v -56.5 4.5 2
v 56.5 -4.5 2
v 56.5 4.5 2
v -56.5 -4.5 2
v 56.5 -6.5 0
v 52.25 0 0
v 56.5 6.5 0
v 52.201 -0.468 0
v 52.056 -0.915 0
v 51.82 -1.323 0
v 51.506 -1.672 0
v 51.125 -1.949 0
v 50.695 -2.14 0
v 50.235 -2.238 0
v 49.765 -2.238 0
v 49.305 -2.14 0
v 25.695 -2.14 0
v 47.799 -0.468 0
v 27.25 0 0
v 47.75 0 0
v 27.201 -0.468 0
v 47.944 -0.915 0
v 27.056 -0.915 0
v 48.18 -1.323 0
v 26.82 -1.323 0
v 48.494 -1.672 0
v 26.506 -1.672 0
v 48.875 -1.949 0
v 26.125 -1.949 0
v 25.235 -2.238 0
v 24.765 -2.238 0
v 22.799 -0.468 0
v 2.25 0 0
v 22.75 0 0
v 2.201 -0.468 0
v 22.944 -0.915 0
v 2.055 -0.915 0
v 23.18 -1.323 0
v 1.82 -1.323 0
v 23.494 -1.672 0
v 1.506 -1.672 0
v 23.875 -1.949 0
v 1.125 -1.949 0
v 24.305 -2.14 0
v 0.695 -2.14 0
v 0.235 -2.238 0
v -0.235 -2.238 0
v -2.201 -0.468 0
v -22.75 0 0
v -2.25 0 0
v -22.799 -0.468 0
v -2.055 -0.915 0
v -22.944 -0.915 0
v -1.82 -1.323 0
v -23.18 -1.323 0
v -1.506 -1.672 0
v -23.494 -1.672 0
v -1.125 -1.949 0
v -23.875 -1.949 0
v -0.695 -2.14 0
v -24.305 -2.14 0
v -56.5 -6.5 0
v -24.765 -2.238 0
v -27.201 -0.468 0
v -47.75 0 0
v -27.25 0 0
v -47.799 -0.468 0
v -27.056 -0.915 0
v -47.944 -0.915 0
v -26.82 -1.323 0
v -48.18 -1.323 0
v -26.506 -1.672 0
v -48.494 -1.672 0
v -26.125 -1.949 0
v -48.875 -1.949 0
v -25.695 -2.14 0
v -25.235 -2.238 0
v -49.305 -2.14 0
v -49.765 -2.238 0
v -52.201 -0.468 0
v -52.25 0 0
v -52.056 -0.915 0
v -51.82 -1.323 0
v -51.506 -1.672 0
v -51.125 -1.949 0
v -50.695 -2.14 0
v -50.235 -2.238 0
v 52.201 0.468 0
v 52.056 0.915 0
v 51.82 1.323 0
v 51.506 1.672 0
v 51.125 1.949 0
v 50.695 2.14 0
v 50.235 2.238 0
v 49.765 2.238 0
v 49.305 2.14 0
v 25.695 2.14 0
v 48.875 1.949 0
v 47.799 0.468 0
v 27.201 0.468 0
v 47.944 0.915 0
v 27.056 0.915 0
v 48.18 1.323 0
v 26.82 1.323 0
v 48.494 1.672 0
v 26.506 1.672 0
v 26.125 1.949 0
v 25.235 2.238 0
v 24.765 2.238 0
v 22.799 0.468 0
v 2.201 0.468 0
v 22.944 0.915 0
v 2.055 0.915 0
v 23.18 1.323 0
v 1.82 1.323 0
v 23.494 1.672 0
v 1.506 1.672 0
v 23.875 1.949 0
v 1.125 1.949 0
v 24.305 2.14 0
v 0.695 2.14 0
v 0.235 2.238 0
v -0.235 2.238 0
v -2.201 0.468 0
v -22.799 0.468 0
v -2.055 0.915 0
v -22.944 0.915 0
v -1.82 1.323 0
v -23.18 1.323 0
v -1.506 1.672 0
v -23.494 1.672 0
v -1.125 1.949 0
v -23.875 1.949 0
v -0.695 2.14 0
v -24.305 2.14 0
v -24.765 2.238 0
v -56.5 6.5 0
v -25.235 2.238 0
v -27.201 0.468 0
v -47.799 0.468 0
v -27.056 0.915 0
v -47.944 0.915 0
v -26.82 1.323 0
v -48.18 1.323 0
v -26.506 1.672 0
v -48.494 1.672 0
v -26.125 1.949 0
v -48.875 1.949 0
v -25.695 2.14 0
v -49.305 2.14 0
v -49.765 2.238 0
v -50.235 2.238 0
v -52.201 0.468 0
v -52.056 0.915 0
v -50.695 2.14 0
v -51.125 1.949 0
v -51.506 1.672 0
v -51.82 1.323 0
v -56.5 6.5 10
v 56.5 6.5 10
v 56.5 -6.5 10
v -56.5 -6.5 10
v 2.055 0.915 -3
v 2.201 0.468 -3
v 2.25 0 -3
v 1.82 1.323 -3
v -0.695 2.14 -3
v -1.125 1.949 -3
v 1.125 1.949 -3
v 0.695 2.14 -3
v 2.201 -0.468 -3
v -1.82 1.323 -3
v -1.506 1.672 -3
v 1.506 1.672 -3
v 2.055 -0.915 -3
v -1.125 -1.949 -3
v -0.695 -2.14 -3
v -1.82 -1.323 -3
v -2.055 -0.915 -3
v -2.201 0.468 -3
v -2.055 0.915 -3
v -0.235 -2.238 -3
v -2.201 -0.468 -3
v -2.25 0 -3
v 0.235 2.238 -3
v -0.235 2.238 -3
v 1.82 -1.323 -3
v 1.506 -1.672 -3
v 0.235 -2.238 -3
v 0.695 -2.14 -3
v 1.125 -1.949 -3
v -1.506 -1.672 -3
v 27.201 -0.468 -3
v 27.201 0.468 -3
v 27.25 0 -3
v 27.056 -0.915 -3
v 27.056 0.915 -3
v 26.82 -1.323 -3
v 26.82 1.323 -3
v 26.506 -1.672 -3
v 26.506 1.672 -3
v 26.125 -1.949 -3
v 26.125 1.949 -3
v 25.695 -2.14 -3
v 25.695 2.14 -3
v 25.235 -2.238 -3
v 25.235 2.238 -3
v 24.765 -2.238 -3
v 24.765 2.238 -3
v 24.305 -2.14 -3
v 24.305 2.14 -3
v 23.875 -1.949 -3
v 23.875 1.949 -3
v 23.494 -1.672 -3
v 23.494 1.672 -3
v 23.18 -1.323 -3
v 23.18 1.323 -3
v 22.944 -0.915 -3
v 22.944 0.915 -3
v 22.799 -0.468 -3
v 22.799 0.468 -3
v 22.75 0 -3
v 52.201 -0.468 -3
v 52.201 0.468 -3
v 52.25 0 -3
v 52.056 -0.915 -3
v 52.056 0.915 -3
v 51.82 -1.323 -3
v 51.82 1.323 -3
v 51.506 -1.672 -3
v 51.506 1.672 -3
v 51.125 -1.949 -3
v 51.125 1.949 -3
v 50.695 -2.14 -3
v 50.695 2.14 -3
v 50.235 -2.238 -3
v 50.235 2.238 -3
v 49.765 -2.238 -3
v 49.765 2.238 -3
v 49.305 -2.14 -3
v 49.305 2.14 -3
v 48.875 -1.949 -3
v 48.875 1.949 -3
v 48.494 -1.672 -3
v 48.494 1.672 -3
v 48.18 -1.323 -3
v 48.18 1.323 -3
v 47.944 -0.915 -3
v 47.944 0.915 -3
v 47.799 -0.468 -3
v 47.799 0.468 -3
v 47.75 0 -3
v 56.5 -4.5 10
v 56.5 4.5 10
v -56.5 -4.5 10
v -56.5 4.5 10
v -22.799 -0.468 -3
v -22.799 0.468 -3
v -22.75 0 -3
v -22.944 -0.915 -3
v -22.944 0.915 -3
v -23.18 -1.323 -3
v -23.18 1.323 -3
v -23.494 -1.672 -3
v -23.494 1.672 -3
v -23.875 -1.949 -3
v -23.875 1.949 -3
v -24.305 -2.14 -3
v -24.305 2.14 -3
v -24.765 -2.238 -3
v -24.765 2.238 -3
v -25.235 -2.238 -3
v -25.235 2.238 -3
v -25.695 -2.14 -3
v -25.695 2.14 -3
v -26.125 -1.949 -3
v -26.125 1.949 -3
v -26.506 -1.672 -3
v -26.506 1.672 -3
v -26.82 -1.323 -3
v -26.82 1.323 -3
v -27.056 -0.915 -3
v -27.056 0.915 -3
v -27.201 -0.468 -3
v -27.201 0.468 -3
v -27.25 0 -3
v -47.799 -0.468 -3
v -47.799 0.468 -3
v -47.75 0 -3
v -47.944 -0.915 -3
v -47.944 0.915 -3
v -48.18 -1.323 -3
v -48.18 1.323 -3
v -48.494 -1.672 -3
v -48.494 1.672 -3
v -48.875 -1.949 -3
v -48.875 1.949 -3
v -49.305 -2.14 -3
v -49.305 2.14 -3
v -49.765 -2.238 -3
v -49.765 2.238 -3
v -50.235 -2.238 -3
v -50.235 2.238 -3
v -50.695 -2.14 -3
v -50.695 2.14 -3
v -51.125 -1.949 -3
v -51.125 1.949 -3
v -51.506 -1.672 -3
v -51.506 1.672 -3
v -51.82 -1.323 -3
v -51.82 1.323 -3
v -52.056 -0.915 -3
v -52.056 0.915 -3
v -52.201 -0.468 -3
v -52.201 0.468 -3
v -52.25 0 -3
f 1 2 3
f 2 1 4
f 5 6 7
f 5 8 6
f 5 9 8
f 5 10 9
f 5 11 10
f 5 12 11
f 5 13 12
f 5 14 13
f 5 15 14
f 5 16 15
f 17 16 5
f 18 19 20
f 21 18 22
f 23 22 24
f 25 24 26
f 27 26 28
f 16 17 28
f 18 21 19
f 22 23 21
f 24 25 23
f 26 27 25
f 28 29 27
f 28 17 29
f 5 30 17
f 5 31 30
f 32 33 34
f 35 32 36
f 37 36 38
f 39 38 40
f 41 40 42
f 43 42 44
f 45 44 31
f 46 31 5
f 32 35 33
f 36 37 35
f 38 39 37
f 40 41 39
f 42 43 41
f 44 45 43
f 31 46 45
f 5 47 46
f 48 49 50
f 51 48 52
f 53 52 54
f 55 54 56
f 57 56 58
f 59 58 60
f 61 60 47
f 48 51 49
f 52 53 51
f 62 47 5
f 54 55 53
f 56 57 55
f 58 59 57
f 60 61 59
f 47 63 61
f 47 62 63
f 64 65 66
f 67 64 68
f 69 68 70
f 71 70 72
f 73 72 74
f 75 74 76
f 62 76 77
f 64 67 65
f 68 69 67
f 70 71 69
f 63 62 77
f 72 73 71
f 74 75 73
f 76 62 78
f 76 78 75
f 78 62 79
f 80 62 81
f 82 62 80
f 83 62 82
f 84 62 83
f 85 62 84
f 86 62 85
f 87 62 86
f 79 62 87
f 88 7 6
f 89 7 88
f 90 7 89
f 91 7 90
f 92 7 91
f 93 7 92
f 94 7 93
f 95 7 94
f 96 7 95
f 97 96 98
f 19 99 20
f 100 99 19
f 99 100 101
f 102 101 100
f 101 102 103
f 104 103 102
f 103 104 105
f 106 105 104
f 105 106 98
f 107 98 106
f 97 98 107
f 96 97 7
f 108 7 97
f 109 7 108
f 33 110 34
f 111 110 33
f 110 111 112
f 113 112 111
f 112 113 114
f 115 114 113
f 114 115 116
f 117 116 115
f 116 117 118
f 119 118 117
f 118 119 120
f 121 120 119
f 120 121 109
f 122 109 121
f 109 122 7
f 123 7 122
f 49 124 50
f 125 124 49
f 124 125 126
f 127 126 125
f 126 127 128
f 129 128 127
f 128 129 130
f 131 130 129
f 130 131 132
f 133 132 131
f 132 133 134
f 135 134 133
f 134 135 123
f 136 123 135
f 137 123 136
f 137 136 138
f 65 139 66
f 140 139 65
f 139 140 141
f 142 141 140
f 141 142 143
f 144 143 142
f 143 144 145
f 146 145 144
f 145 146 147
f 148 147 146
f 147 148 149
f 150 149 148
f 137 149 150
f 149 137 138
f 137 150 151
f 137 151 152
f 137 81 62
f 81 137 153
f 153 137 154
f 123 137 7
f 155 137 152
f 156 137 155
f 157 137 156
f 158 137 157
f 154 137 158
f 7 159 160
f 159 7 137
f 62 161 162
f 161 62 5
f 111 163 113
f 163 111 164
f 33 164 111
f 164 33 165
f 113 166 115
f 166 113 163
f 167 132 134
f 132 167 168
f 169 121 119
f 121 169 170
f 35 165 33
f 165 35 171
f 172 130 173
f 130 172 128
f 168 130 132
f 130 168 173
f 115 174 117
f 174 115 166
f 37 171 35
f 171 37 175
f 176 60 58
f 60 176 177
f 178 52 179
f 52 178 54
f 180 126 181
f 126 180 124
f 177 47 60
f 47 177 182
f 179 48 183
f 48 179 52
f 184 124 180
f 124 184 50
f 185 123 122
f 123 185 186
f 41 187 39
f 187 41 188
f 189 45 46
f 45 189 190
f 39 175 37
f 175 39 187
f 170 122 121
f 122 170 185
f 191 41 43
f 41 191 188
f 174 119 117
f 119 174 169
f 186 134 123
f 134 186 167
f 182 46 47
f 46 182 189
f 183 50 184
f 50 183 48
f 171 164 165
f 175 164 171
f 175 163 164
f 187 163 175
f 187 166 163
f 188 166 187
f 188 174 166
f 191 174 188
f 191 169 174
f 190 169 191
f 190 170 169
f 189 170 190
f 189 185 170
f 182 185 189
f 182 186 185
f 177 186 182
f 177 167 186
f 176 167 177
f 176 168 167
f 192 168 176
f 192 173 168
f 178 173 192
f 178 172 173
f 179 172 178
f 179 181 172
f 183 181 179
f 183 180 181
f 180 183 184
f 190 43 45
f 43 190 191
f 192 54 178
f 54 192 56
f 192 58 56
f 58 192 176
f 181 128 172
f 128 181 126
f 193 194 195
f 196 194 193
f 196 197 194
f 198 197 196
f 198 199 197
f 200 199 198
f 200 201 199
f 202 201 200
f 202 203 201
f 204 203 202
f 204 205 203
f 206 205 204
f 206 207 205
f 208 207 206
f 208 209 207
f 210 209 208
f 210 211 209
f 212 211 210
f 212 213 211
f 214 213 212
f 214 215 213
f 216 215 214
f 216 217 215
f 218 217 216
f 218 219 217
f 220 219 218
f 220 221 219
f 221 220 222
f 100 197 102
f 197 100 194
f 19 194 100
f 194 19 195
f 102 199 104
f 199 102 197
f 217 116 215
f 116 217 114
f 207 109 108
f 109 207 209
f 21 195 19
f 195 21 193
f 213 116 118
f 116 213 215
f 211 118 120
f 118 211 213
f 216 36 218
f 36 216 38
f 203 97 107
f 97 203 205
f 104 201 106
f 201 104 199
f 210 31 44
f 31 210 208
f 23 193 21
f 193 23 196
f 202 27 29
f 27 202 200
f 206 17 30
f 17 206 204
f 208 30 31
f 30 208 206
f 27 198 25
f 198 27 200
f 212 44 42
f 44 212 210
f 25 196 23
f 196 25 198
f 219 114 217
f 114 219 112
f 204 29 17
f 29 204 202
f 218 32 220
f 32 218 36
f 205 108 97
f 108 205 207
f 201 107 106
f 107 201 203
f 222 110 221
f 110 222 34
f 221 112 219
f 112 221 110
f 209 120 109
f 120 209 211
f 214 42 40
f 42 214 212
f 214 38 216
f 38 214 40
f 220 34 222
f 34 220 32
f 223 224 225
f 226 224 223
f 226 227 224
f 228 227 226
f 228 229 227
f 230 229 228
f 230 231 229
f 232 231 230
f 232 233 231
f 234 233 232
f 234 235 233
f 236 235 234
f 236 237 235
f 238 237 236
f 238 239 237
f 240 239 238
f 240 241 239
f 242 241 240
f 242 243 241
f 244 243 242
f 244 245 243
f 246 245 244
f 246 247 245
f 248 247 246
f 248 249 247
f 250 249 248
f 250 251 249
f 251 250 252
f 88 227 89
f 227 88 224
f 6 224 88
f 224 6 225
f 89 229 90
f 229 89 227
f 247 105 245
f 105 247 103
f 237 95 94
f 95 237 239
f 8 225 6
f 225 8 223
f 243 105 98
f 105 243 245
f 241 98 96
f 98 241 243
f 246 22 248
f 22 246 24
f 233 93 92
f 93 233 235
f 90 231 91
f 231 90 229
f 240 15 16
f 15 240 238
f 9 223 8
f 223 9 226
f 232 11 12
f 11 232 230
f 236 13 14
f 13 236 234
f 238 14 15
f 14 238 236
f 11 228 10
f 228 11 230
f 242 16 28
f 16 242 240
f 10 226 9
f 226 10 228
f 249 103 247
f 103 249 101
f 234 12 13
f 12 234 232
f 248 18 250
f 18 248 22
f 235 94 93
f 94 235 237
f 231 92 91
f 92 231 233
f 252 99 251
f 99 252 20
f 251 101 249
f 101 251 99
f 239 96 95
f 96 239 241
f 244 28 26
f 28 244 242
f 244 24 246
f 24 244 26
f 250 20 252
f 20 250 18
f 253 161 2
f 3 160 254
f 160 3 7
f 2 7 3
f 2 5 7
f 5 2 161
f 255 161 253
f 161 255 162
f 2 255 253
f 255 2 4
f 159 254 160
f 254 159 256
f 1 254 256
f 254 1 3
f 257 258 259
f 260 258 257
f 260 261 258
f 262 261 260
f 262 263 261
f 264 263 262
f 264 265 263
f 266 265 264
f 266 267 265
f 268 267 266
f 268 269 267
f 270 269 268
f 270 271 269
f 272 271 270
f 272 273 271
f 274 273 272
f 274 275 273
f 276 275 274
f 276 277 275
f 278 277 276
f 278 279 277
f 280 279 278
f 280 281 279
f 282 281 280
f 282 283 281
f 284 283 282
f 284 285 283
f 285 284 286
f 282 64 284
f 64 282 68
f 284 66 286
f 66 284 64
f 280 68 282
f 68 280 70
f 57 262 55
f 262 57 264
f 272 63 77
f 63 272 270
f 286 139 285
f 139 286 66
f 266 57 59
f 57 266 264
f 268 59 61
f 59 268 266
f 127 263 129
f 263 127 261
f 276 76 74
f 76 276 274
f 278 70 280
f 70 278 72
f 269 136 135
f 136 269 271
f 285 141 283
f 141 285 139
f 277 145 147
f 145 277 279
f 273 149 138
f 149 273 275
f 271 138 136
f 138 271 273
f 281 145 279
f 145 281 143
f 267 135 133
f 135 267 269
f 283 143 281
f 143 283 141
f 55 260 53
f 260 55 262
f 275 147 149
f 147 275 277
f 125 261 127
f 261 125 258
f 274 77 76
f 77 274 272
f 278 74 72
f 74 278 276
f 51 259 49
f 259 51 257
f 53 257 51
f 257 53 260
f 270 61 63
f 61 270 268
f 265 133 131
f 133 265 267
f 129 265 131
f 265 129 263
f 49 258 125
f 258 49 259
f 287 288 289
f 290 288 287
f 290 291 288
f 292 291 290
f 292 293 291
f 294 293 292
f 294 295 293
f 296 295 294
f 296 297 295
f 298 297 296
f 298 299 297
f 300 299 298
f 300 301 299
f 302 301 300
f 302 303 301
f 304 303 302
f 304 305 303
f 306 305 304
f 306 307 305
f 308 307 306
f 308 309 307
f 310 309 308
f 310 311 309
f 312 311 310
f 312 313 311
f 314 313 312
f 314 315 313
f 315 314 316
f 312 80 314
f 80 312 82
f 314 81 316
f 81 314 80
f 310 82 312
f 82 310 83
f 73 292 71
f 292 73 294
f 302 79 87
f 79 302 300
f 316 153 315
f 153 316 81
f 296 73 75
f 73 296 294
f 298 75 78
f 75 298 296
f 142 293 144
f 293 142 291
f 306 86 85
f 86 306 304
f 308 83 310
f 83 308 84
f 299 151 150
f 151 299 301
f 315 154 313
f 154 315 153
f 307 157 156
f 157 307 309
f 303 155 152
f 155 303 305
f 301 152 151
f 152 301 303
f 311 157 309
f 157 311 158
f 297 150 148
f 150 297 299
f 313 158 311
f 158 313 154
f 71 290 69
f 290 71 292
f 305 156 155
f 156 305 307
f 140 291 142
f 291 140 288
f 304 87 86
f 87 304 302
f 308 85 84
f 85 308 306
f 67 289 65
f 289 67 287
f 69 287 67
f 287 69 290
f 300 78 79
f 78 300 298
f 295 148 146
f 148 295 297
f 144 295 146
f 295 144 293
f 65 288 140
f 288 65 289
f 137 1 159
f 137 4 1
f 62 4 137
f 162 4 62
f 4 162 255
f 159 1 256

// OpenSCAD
// file: common.scad
CENTER_SIZE = 9;
SLEEVE_REACH = 56.5;
GROOVE_WIDTH = 9;
WALL_HEIGHT = 10;
WALL_THICKNESS = 2;
BASE_THICKNESS = 2;
TOTAL_WIDTH = GROOVE_WIDTH + 2 * WALL_THICKNESS;
SLEEVE_LENGTH = SLEEVE_REACH - CENTER_SIZE/2;
DOWEL_DIAMETER = 4.5;
DOWEL_DEPTH = 3;
CARDBOARD_THICKNESS = 2;
GROOVE_BOTTOM = CARDBOARD_THICKNESS;
CURVE_POWER = 2;
CURVE_POINTS = 20;
TILT_ANGLE_EXTRA = 5;
FLEXIBLE_WALL_HEIGHT = WALL_HEIGHT * 2;
function wall_curve(z) =
    GROOVE_BOTTOM/2 + (GROOVE_WIDTH/2 - GROOVE_BOTTOM/2) * pow(z/(FLEXIBLE_WALL_HEIGHT - BASE_THICKNESS), CURVE_POWER);
module curved_wall_profile(side) {
    wall_h = FLEXIBLE_WALL_HEIGHT - BASE_THICKNESS;
    points_inner = [for (i = [0:CURVE_POINTS])
        [wall_curve(i * wall_h / CURVE_POINTS) * side,
         i * wall_h / CURVE_POINTS]
    ];
    points_outer = [for (i = [0:CURVE_POINTS])
        [(wall_curve(i * wall_h / CURVE_POINTS) + WALL_THICKNESS) * side,
         i * wall_h / CURVE_POINTS]
    ];
    all_points = concat(
        [[points_inner[0][0], 0]],
        points_inner,
        [points_outer[len(points_outer)-1]],
        [for (i = [len(points_outer)-1:-1:0]) points_outer[i]],
        [[points_outer[0][0], 0]]
    );
    polygon(all_points);
}
module draw_regular_wall_base(width) {
    translate([0, 0, BASE_THICKNESS])
        cube([width, WALL_THICKNESS, WALL_HEIGHT - BASE_THICKNESS]);
}
module draw_flexible_wall_base(width) {
    tilt_angle = atan((GROOVE_WIDTH/2 - GROOVE_BOTTOM/2) / (FLEXIBLE_WALL_HEIGHT - BASE_THICKNESS)) + TILT_ANGLE_EXTRA;
    rotate([0, 0, 90])
        rotate([tilt_angle + 6, 0, 0])
            rotate([90, 0, 90])
                linear_extrude(height = width)
                    curved_wall_profile(1);
}
module draw_center_base(with_dowel = false) {
    union() {
        translate([-TOTAL_WIDTH/2, -TOTAL_WIDTH/2, 0])
            cube([TOTAL_WIDTH, TOTAL_WIDTH, BASE_THICKNESS]);
        if (with_dowel) {
            translate([0, 0, -DOWEL_DEPTH])
                cylinder(h=DOWEL_DEPTH, d=DOWEL_DIAMETER, $fn=30);
        }
    }
}
module place_regular_center_wall(side) {
    if (side == 0) {
        translate([CENTER_SIZE/2 + WALL_THICKNESS, -TOTAL_WIDTH/2, 0])
            rotate([0, 0, 90])
                draw_regular_wall_base(TOTAL_WIDTH);
    } else if (side == 1) {
        translate([-TOTAL_WIDTH/2, CENTER_SIZE/2, 0])
            draw_regular_wall_base(TOTAL_WIDTH);
    } else if (side == 2) {
        translate([-CENTER_SIZE/2, -TOTAL_WIDTH/2, 0])
            rotate([0, 0, 90])
                draw_regular_wall_base(TOTAL_WIDTH);
    } else if (side == 3) {
        translate([-TOTAL_WIDTH/2, -CENTER_SIZE/2 - WALL_THICKNESS, 0])
            draw_regular_wall_base(TOTAL_WIDTH);
    }
}
module place_flexible_center_wall(side) {
    if (side == 0) {
        translate([CENTER_SIZE/2 - WALL_THICKNESS/2, TOTAL_WIDTH/2, 0])
            rotate([0, 0, 180])
                draw_flexible_wall_base(TOTAL_WIDTH);
    } else if (side == 1) {
        translate([-TOTAL_WIDTH/2, CENTER_SIZE/2 - WALL_THICKNESS/2, 0])
            rotate([0, 0, 270])
                draw_flexible_wall_base(TOTAL_WIDTH);
    } else if (side == 2) {
        translate([-CENTER_SIZE/2 + WALL_THICKNESS/2, -TOTAL_WIDTH/2, 0])
            draw_flexible_wall_base(TOTAL_WIDTH);
    } else if (side == 3) {
        translate([CENTER_SIZE/2 + WALL_THICKNESS, -TOTAL_WIDTH/2 + WALL_THICKNESS + WALL_THICKNESS/2, 0])
            rotate([0, 0, 90])
                draw_flexible_wall_base(TOTAL_WIDTH);
    }
}
module place_center_wall(side, wall_type = "regular") {
    if (wall_type == "regular") {
        place_regular_center_wall(side);
    } else if (wall_type == "flexible") {
        place_flexible_center_wall(side);
    }
}
module draw_sleeve_base(with_dowel = false) {
    union() {
        translate([0, -TOTAL_WIDTH/2, 0])
            cube([SLEEVE_LENGTH, TOTAL_WIDTH, BASE_THICKNESS]);
        if (with_dowel) {
            translate([25 - CENTER_SIZE/2, 0, -DOWEL_DEPTH])
                cylinder(h=DOWEL_DEPTH, d=DOWEL_DIAMETER, $fn=30);
            translate([50 - CENTER_SIZE/2, 0, -DOWEL_DEPTH])
                cylinder(h=DOWEL_DEPTH, d=DOWEL_DIAMETER, $fn=30);
        }
    }
}
module draw_regular_sleeve_wall(wall_side) {
    y_offset = (wall_side == "left") ? -TOTAL_WIDTH/2 : TOTAL_WIDTH/2 - WALL_THICKNESS;
    translate([0, y_offset, 0])
        draw_regular_wall_base(SLEEVE_LENGTH);
}
module draw_flexible_sleeve_wall(side) {
    if (side == "left") {
        translate([0, TOTAL_WIDTH/2 - WALL_THICKNESS/2 - WALL_THICKNESS, 0])
            rotate([0, 0, 270])
                draw_flexible_wall_base(SLEEVE_LENGTH);
    } else if (side == "right") {
        translate([SLEEVE_LENGTH, -TOTAL_WIDTH/2 + WALL_THICKNESS + WALL_THICKNESS/2, 0])
            rotate([0, 0, 90])
                draw_flexible_wall_base(SLEEVE_LENGTH);
    }
}
module draw_sleeve_wall(wall_side, wall_type = "regular") {
    if (wall_type == "regular") {
        draw_regular_sleeve_wall(wall_side);
    } else if (wall_type == "flexible") {
        draw_flexible_sleeve_wall(wall_side);
    }
}
module draw_full_sleeve(with_dowel = false, wall_type = "regular") {
    union() {
        draw_sleeve_base(with_dowel);
        draw_sleeve_wall("left", wall_type);
        draw_sleeve_wall("right", wall_type);
    }
}
module place_sleeve(side, with_dowel = false, wall_type = "regular") {
    if (side == 0) {
        translate([CENTER_SIZE/2, 0, 0])
            draw_full_sleeve(with_dowel, wall_type);
    } else if (side == 1) {
        rotate([0, 0, 90])
            translate([CENTER_SIZE/2, 0, 0])
                draw_full_sleeve(with_dowel, wall_type);
    } else if (side == 2) {
        rotate([0, 0, 180])
            translate([CENTER_SIZE/2, 0, 0])
                draw_full_sleeve(with_dowel, wall_type);
    } else if (side == 3) {
        rotate([0, 0, 270])
            translate([CENTER_SIZE/2, 0, 0])
                draw_full_sleeve(with_dowel, wall_type);
    }
}
module add_dowel(x, y, dowel_diameter, dowel_depth) {
    translate([x, y, -dowel_depth])
        cylinder(h=dowel_depth, d=dowel_diameter, $fn=30);
}
// main file
use <common.scad>

union() {
    draw_center_base(with_dowel = true);
    place_center_wall(1);
    place_center_wall(3);
    place_sleeve(0, with_dowel = true);
    place_sleeve(2, with_dowel = true);
}
